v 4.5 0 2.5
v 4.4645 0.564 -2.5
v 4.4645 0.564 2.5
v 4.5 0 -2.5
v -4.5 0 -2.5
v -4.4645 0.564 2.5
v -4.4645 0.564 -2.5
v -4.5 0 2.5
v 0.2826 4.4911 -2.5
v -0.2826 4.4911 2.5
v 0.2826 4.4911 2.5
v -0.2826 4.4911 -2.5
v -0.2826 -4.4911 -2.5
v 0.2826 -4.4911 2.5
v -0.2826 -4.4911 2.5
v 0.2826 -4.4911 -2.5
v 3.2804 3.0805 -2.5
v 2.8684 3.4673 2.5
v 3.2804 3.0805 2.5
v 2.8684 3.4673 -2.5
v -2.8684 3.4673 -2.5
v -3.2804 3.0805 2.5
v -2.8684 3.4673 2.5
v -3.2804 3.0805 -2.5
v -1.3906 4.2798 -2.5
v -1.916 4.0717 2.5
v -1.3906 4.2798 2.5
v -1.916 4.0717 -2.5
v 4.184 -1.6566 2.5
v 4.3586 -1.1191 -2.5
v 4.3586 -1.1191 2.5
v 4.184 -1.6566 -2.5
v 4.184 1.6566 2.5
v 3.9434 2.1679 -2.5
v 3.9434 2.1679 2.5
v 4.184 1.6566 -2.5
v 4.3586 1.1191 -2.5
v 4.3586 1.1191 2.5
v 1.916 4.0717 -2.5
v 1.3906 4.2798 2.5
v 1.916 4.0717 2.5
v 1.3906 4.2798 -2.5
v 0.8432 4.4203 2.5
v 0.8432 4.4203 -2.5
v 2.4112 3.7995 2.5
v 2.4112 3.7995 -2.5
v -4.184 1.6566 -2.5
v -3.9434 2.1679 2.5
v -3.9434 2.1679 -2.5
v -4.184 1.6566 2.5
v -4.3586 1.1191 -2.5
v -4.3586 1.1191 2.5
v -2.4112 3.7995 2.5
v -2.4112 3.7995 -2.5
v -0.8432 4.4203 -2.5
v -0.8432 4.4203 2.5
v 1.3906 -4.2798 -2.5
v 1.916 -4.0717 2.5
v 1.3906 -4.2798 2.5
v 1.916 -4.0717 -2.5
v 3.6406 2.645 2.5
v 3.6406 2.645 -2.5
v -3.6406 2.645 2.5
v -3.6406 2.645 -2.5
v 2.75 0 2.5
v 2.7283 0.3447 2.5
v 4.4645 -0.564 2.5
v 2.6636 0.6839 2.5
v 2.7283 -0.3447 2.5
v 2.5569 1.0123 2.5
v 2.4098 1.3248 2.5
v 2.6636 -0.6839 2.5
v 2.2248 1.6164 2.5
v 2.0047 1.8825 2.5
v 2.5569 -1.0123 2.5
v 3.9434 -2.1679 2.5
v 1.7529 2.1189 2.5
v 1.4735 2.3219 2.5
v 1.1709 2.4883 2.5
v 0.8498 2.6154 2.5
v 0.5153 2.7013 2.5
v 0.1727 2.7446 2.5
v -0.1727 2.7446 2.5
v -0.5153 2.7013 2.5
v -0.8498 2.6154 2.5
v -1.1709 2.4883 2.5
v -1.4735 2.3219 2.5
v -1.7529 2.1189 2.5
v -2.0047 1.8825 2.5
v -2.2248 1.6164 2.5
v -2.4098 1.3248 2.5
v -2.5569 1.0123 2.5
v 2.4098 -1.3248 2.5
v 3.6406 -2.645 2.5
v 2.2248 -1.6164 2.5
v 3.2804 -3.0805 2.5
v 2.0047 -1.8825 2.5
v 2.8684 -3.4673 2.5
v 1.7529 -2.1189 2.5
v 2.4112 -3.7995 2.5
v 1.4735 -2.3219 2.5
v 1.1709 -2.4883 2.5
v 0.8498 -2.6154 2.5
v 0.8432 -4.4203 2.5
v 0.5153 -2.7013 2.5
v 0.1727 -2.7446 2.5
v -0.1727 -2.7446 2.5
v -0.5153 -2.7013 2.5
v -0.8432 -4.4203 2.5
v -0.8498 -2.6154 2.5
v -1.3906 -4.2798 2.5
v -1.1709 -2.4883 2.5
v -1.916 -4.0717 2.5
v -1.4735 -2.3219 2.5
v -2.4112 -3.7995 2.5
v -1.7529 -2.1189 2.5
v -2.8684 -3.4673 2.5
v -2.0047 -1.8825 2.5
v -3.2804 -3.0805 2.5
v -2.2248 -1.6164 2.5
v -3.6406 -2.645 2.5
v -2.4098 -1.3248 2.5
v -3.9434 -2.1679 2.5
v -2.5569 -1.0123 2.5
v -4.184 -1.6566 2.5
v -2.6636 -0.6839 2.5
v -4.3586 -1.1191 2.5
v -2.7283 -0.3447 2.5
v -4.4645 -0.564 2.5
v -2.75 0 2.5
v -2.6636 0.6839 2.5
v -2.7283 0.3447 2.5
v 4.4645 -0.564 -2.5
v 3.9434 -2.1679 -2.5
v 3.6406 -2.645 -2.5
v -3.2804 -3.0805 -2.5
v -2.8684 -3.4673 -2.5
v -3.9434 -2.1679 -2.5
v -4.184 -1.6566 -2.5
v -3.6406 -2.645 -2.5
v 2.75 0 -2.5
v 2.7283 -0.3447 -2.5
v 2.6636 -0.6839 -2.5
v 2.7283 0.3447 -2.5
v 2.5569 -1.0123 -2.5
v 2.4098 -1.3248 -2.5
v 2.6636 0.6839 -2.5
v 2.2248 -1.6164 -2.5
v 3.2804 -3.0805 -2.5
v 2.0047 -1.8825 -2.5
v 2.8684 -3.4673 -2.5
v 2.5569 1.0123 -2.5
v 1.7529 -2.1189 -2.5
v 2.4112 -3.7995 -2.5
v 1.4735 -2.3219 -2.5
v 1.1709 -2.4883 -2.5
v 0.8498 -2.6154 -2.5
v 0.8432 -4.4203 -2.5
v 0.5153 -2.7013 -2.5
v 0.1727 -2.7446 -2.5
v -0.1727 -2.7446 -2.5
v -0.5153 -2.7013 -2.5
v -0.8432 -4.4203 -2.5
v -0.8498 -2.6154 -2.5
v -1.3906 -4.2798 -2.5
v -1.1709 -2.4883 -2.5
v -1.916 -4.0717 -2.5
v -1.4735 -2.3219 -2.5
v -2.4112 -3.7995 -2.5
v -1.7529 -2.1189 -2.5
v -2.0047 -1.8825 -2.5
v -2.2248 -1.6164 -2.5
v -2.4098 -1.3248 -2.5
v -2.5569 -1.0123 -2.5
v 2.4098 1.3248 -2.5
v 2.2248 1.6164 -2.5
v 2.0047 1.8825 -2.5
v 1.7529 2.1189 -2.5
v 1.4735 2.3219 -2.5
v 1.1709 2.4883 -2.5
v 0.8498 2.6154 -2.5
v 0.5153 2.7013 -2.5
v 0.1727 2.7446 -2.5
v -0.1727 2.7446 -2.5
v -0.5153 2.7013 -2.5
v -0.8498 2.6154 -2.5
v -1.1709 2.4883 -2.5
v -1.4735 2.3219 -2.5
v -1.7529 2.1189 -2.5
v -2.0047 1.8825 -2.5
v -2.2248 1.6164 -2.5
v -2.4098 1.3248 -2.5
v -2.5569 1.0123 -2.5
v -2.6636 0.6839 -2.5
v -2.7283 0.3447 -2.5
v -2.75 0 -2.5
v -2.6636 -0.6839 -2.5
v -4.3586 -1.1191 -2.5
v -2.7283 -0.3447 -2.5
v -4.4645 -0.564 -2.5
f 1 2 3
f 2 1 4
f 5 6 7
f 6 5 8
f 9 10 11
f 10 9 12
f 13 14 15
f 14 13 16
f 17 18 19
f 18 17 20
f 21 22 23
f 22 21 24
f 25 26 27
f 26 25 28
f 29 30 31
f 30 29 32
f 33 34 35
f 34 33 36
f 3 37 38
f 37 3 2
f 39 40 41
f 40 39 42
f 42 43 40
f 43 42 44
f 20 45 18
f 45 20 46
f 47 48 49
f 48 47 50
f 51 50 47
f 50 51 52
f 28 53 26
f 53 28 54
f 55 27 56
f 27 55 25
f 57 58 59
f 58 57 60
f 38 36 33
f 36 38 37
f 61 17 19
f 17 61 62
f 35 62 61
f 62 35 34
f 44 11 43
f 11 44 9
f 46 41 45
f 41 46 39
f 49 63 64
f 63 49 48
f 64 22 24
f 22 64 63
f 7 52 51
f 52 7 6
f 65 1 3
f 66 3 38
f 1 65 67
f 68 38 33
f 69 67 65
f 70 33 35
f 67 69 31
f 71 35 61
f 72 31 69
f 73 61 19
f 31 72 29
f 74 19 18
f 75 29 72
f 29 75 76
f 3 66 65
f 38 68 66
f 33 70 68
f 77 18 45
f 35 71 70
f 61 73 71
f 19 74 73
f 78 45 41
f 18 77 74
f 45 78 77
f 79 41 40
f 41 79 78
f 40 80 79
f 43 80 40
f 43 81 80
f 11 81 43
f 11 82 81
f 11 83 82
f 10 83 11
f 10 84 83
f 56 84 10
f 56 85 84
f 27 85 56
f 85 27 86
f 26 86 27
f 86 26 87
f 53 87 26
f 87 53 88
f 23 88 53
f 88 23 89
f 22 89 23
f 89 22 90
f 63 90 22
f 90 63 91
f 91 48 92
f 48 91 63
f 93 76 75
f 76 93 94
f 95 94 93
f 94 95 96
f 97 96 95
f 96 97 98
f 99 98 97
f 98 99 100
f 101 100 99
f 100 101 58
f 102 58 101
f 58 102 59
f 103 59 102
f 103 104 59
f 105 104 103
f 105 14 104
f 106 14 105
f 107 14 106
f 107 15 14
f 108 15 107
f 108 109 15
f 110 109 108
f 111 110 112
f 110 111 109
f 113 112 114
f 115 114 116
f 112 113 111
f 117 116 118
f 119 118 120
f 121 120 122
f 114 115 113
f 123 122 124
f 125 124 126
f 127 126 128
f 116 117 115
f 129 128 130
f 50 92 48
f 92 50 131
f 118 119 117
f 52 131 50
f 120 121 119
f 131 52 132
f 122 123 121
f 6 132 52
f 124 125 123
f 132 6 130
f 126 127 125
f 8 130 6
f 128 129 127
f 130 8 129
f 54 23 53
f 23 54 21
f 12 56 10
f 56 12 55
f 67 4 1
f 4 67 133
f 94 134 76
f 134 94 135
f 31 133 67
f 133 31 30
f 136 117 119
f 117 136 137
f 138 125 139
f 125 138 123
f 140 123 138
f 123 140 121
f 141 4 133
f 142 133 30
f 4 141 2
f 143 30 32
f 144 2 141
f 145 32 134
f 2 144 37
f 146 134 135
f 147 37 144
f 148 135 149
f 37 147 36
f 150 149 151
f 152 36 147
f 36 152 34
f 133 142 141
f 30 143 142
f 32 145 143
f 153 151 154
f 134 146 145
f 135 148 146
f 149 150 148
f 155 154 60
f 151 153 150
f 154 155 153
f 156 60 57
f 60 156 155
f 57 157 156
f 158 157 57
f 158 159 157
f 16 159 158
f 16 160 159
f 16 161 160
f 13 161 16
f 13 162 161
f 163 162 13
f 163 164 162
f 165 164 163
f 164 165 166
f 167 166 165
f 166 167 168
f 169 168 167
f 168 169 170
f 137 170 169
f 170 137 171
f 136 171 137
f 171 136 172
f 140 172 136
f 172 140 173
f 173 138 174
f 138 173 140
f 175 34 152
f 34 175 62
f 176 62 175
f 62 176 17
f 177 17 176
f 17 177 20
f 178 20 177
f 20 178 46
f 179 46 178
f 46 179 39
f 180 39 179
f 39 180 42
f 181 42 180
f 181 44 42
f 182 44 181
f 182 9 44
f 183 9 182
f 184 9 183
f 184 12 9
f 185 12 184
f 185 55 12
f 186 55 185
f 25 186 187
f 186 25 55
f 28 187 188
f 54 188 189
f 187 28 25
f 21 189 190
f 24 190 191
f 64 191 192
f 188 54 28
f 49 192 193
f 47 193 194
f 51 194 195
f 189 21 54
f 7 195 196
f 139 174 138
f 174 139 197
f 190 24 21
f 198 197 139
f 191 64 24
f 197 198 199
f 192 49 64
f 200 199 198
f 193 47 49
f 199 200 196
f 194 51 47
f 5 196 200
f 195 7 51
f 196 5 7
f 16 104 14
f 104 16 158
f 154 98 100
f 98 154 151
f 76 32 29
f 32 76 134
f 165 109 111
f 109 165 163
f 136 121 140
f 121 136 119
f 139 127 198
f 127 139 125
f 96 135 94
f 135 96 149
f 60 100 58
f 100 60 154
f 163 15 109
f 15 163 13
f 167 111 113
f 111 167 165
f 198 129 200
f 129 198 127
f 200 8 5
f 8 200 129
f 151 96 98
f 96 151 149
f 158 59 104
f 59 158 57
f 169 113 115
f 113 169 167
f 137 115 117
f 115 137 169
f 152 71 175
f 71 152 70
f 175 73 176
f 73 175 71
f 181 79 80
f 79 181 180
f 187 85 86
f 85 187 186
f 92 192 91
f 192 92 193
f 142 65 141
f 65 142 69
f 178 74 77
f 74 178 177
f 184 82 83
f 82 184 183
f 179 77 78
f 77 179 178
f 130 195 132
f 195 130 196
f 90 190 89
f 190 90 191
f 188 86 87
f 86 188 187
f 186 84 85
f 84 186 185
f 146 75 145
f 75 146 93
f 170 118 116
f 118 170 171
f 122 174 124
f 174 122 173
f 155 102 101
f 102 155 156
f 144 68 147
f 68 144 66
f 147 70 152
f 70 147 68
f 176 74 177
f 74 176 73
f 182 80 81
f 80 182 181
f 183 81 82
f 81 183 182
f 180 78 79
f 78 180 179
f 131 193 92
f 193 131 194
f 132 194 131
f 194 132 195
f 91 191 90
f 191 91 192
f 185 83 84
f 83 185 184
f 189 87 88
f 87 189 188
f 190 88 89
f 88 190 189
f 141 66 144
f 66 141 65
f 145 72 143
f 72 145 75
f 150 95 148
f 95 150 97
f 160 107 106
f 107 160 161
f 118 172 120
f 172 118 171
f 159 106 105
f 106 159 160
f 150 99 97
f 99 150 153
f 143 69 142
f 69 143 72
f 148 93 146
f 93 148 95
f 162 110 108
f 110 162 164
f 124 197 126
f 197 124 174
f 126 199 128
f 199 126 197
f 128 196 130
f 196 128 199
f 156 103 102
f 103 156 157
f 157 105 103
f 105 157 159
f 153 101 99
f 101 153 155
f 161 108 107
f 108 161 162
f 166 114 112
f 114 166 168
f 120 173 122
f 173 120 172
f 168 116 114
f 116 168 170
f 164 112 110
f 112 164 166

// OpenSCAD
$fn = 50;


difference() {
	union() {
		translate(v = [0, 0, -2.5000000000]) {
			cylinder(h = 5, r = 4.5000000000);
		}
	}
	union() {
		translate(v = [0, 0, -100.0000000000]) {
			cylinder(h = 200, r = 2.7500000000);
		}
	}
}
